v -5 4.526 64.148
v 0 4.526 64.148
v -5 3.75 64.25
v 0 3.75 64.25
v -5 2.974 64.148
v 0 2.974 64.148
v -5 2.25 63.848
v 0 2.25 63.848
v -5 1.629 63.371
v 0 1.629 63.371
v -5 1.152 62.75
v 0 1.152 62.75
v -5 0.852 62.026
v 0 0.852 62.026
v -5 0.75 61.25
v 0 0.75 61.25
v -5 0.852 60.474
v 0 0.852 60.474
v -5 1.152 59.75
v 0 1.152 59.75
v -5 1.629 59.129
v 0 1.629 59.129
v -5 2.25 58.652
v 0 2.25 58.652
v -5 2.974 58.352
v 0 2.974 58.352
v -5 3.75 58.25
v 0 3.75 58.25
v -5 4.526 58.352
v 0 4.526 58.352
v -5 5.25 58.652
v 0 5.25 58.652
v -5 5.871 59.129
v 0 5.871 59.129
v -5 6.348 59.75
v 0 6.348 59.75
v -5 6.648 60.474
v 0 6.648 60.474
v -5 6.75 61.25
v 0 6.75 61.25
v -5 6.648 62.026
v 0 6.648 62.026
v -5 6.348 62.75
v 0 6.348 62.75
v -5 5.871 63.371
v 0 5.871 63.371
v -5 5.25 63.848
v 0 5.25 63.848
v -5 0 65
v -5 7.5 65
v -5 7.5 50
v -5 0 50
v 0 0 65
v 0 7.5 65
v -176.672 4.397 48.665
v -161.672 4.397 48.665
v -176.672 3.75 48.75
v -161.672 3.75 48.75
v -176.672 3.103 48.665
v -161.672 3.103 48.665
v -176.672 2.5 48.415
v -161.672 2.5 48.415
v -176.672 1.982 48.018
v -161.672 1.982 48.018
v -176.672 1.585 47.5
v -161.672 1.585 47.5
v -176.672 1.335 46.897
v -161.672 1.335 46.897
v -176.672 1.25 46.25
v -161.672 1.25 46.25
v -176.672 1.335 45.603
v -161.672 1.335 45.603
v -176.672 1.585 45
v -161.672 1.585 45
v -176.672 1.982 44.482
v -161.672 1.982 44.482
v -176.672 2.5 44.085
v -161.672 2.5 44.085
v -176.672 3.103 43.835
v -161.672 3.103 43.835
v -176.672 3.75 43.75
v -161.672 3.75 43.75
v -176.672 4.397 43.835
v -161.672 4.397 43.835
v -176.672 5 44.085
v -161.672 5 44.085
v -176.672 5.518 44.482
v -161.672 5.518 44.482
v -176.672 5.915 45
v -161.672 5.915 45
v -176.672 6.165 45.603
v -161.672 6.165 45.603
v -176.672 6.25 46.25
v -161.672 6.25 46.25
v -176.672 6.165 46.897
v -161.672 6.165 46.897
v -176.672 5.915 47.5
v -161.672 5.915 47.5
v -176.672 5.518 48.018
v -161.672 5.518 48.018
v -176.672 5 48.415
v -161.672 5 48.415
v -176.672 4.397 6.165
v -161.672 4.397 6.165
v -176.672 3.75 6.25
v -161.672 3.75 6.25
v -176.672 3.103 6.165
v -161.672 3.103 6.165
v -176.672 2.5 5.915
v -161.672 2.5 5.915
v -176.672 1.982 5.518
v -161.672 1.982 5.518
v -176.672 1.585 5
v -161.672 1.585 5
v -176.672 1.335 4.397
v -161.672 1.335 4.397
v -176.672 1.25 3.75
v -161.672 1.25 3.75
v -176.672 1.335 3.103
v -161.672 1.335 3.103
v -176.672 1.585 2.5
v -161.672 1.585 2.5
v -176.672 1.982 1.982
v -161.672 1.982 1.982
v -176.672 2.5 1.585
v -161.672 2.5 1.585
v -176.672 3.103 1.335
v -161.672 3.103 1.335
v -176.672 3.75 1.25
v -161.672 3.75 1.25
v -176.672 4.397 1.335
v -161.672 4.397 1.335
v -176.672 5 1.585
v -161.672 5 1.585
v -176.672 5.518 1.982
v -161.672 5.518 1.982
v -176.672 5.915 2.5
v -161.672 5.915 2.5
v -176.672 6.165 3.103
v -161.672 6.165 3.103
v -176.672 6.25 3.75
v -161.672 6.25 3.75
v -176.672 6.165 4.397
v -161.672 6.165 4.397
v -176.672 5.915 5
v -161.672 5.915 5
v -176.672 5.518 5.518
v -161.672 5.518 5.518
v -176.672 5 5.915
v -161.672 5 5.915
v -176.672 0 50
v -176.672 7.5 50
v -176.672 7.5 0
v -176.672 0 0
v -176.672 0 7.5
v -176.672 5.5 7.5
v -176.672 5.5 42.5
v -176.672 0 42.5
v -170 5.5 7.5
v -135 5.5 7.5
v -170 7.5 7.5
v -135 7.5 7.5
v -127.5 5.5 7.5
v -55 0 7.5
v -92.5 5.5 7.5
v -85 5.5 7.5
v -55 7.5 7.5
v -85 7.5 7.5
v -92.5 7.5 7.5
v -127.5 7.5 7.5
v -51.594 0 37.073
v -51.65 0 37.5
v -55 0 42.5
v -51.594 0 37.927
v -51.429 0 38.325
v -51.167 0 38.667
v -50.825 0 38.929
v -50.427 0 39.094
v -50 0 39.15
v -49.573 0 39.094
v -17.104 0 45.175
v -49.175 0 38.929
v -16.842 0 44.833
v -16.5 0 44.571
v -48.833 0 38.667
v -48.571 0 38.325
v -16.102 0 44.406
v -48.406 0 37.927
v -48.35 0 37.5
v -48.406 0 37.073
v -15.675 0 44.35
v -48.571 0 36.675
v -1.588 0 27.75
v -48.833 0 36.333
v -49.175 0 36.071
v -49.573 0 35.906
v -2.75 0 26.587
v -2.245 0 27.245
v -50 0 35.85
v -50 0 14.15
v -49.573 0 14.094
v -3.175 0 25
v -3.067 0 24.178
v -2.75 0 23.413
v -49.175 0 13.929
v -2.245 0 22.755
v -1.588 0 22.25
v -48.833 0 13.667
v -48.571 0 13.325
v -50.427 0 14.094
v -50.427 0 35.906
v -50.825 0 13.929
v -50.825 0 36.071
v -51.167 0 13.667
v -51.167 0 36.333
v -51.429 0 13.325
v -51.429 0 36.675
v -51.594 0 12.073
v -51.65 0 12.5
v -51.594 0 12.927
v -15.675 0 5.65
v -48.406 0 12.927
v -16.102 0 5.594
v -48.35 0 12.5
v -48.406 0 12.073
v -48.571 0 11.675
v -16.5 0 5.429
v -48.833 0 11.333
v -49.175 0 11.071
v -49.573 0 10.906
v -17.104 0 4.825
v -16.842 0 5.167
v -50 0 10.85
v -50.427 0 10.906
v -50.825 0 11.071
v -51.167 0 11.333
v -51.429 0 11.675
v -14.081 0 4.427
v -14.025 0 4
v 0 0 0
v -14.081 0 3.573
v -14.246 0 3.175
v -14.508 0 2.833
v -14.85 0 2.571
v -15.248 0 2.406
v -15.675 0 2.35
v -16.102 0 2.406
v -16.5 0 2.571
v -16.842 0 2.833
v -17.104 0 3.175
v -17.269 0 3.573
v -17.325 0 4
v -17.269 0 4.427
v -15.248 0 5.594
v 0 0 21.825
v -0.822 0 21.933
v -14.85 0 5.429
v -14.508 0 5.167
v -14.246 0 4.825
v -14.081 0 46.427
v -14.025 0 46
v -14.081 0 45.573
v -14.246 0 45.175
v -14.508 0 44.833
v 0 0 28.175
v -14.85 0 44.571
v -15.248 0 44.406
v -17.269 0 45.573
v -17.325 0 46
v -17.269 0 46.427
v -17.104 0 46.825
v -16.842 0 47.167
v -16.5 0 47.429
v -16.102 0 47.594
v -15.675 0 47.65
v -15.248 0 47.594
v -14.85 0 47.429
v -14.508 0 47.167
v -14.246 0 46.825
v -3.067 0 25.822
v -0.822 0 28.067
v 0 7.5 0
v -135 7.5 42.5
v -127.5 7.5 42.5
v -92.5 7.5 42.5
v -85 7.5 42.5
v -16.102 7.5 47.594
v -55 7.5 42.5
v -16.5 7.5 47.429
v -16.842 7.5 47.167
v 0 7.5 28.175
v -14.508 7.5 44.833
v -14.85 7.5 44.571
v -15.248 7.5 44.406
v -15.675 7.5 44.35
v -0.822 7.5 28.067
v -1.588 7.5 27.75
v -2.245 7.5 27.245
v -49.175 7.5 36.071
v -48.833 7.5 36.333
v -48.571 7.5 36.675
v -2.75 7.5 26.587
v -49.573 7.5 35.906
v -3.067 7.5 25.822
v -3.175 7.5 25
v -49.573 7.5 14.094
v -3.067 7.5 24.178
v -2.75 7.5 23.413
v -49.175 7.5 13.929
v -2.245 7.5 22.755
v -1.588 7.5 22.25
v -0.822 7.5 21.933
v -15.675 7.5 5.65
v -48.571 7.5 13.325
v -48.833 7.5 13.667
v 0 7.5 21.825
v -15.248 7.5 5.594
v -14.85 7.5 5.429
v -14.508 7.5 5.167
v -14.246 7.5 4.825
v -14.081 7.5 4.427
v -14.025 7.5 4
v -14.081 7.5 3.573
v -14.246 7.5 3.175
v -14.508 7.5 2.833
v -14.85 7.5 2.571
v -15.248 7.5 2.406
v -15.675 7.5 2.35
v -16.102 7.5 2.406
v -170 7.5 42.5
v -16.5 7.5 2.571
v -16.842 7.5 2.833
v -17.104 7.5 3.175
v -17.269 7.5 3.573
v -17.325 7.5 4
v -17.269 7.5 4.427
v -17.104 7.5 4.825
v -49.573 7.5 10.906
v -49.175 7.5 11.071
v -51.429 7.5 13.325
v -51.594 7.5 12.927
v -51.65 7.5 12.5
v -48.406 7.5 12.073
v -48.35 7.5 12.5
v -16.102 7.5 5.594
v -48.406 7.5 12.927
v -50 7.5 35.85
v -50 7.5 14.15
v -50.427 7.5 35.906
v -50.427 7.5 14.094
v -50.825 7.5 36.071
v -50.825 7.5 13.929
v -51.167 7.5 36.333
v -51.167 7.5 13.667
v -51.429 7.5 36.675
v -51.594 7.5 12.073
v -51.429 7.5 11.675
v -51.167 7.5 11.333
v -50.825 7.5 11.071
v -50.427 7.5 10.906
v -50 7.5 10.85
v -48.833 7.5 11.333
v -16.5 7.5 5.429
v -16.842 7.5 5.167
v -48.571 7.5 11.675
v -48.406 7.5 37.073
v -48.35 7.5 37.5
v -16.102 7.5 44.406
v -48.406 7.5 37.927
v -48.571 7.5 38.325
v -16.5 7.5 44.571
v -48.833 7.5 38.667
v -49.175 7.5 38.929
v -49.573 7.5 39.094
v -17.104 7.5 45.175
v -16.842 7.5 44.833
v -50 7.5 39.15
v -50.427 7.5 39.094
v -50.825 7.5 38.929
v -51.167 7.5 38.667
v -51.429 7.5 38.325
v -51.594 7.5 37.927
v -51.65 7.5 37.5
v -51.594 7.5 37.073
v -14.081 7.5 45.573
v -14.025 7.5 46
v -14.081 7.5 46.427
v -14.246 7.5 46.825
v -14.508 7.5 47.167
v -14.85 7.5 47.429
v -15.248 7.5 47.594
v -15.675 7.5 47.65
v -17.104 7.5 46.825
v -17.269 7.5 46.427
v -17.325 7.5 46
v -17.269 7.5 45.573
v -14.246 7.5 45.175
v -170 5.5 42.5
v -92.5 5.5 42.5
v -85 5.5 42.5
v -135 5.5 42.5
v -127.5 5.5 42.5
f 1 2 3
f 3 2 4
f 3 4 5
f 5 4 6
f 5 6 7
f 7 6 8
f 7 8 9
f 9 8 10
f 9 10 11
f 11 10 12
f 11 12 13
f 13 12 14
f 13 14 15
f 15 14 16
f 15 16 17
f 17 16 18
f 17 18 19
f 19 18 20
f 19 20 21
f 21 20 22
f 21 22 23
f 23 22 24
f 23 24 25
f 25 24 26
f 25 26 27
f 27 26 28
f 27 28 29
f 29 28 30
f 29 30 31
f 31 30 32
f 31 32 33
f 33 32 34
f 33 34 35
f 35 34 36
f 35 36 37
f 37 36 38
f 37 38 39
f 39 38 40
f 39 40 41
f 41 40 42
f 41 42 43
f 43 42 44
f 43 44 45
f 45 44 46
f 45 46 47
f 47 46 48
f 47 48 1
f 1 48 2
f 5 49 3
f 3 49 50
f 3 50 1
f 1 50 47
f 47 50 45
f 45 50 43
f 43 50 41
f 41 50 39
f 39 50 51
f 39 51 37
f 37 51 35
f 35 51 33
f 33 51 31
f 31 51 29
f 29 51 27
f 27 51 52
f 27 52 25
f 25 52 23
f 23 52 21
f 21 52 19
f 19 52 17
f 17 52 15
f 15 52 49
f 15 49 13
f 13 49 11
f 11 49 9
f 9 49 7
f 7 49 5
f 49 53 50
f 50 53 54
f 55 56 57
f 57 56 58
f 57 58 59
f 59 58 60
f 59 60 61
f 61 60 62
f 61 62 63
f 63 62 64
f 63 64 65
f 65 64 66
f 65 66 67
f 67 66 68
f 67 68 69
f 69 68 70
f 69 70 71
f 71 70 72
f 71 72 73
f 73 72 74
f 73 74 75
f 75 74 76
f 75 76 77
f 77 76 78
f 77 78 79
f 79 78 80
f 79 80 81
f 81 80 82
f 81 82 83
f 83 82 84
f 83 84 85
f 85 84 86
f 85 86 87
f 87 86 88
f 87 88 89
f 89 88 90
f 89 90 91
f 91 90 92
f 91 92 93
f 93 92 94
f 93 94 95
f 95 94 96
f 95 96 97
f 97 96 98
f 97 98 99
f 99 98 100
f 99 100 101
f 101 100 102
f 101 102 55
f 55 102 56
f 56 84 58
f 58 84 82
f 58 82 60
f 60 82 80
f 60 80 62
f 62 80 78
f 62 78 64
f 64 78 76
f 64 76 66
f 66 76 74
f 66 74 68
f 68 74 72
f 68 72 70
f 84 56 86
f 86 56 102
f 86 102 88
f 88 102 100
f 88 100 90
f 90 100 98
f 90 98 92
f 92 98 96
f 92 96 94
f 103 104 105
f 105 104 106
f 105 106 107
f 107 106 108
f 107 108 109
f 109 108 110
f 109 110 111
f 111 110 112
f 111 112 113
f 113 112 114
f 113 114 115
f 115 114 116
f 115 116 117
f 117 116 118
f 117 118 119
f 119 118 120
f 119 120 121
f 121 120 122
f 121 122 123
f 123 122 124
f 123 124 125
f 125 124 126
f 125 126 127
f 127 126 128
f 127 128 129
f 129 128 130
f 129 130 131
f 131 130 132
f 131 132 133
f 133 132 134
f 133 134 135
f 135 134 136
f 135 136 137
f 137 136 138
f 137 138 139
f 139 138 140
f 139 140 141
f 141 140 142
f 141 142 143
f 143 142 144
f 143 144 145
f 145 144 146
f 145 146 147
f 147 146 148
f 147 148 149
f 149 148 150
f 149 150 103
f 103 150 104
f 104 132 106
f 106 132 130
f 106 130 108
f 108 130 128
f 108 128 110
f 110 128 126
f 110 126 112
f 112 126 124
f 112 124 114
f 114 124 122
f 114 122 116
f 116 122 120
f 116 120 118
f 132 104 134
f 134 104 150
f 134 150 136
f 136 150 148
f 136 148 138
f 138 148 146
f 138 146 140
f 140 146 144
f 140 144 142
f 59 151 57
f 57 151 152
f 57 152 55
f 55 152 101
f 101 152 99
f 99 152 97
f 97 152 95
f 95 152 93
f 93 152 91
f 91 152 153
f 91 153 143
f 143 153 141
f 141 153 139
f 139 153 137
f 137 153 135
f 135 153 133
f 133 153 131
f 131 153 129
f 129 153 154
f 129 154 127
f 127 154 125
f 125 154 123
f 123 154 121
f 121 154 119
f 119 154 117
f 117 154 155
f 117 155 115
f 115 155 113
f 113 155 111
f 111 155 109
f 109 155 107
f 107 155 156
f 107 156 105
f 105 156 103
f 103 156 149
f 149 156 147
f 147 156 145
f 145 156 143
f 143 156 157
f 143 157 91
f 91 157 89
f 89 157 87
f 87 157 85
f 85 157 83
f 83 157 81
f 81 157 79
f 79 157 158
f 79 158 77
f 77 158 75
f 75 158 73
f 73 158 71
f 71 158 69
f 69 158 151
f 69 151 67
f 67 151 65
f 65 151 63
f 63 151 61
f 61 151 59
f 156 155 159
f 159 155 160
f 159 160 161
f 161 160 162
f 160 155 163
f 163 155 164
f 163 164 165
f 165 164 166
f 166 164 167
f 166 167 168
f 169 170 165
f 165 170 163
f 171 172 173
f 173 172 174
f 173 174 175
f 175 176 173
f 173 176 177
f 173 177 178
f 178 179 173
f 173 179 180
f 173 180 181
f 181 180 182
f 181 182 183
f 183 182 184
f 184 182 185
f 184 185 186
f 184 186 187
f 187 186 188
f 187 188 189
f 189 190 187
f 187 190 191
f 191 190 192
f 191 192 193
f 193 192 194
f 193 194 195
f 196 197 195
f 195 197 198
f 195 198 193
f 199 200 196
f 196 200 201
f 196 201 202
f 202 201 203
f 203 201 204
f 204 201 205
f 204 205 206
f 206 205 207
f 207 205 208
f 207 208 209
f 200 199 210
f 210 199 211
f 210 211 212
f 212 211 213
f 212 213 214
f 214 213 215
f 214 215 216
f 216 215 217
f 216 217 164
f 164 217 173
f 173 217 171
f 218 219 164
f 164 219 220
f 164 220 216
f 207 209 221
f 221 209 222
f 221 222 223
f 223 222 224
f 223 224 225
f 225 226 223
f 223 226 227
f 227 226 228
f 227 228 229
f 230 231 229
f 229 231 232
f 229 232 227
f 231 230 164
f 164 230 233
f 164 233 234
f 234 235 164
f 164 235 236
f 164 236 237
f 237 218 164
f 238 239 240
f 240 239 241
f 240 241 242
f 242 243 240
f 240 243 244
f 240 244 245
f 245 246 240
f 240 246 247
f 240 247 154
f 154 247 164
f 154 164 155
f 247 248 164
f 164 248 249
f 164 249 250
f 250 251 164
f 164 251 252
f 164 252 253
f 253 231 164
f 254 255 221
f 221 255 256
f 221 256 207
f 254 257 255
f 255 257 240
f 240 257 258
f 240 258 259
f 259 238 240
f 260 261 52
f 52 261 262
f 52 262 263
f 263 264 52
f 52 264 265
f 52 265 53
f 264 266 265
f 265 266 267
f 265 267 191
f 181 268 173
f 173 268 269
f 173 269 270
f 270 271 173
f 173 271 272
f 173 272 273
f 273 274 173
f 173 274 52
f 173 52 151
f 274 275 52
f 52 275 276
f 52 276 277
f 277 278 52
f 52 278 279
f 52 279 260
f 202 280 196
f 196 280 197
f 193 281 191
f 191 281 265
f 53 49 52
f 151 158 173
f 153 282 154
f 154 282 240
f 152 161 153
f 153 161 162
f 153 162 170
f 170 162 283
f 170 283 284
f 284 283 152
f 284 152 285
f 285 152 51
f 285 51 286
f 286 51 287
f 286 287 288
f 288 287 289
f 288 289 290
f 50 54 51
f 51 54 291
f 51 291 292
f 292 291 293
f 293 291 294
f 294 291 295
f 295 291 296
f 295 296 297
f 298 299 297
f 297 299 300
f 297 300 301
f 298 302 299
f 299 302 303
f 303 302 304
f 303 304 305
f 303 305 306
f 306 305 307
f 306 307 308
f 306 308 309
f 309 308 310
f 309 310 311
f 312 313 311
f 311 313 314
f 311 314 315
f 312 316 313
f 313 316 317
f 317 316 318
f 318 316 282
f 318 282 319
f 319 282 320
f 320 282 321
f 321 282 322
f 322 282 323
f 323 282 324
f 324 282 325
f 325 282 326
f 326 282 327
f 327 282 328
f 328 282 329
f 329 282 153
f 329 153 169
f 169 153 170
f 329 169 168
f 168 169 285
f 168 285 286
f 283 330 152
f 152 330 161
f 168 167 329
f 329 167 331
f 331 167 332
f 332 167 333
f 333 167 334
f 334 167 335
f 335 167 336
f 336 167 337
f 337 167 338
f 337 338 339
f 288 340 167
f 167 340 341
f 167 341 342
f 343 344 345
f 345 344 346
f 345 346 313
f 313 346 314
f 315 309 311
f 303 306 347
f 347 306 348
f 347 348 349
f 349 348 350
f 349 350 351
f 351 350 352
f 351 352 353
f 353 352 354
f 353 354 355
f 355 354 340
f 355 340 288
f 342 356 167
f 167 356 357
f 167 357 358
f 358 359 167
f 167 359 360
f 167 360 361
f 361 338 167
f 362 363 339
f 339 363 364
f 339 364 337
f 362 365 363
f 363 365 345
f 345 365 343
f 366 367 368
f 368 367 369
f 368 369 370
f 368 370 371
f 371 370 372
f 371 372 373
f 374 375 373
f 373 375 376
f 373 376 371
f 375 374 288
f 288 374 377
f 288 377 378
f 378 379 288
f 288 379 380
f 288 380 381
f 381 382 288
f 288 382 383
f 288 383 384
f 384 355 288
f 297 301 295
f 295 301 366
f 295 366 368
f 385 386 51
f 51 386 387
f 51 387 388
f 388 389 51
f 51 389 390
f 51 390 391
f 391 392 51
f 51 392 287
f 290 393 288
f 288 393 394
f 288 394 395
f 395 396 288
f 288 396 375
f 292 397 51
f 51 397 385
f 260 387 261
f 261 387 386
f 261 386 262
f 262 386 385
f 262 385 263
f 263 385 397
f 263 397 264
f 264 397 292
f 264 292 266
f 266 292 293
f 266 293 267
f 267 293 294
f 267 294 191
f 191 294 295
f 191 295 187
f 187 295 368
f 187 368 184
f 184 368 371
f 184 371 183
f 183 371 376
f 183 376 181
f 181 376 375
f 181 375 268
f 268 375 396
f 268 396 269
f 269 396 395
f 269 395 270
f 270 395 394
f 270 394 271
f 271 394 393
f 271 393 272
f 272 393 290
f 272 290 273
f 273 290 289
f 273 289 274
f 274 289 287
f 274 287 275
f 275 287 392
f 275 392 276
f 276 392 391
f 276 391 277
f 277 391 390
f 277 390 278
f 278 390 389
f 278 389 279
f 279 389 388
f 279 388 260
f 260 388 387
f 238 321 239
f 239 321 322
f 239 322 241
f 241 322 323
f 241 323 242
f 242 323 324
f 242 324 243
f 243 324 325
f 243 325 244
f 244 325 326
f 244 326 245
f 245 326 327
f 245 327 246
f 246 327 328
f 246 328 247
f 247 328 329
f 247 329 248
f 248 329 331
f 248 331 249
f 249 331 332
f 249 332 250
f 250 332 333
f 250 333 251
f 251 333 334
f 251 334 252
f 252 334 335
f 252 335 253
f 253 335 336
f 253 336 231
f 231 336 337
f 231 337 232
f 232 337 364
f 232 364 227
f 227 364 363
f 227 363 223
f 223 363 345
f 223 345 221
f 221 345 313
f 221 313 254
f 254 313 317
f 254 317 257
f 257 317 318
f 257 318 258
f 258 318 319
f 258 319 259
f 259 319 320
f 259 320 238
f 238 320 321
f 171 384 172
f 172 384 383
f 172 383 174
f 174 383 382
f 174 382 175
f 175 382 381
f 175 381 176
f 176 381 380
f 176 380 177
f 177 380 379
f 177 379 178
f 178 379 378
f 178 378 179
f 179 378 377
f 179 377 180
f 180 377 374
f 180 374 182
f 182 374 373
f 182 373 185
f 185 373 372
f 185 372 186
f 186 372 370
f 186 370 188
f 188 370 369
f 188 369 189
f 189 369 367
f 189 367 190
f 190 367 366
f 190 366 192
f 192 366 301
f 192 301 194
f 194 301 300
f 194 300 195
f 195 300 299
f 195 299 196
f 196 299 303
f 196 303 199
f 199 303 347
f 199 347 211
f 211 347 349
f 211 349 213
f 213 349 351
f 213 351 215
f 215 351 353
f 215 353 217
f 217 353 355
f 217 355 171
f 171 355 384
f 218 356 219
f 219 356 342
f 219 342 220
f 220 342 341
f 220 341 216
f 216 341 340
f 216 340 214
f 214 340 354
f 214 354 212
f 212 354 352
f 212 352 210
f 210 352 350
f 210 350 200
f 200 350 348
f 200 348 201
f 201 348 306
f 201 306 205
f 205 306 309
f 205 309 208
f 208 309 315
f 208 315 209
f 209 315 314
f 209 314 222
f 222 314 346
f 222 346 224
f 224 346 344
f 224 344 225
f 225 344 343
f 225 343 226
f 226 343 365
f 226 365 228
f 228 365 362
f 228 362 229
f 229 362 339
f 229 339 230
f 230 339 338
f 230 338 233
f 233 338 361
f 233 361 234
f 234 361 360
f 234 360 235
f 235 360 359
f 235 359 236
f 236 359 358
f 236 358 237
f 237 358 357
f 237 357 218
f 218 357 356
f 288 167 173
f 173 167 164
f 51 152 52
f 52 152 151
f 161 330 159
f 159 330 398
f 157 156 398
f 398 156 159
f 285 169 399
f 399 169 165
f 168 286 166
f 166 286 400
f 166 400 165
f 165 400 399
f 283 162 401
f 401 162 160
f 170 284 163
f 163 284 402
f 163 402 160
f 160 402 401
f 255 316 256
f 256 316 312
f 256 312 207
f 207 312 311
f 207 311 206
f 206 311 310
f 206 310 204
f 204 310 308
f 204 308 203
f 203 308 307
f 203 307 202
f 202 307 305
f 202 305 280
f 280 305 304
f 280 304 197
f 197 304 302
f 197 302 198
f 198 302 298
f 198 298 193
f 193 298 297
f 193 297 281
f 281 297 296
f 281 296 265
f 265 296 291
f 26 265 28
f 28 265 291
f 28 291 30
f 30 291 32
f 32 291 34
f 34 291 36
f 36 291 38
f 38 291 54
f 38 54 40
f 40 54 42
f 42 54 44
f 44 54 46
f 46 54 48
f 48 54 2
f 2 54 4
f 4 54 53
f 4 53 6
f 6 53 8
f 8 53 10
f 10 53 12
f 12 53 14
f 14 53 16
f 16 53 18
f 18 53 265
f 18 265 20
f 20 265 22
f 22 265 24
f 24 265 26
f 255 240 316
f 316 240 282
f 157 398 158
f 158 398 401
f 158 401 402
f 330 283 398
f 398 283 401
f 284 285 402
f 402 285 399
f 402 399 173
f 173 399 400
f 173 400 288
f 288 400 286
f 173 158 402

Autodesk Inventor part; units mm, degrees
ref_plane "YZ Plane" through (0, 0, 0) normal (1, 0, 0) x (0, 1, 0)
ref_plane "XZ Plane" through (0, 0, 0) normal (0, 1, 0) x (-1, 0, 0)
ref_plane "XY Plane" through (0, 0, 0) normal (0, 0, 1) x (1, 0, 0)
sketch "Sketch1" plane through (0, 0, 0) normal (0, 1, 0) x (-1, 0, 0)
  line L0 (0, 0) -> (50, 0)
  line L1 (50, 0) -> (50, 50)
  line L2 (50, 50) -> (0, 50)
  line L3 (0, 50) -> (0, 0)
  line L4 (50, 50) -> (290, 50)
  line L5 (290, 50) -> (290, 42.5)
  line L6 (290, 42.5) -> (50, 42.5)
  line L7 (50, 42.5) -> (50, 50)
  line L8 (50, 0) -> (290, 0)
  line L9 (290, 0) -> (290, 7.5)
  line L10 (290, 7.5) -> (50, 7.5)
  line L11 (50, 7.5) -> (50, 0)
  dimension "d0" = 50
  dimension "d1" = 50
  dimension "d2" = 240
  dimension "d3" = 7.5
  dimension "d4" = 7.5
extrude "Extrusion1" add sketch "Sketch1" along normal blind 7.5
sketch "Sketch2" plane through (0, 7.5, 0) normal (0, 1, 0) x (1, 0, 0)
  line L0 (0, -50) -> (0, 0) projected
  point P0 (0, -25)
hole "Hole1" at (0, 7.5, 25) direction (0, -1, 0) diameter 6.35 end through all
sketch "Sketch3" plane through (0, 7.5, 0) normal (0, 1, 0) x (1, 0, 0)
  line L0 (-3.175, -50) -> (-3.175, 0) construction
  line L1 (-3.175, -50) -> (-28.175, -50) construction
  line L2 (-28.175, -50) -> (-28.175, 0) construction
  line L3 (-28.175, 0) -> (-3.175, 0) construction
  point P0 (0, 0)
  point P1 (-7.175, -4)
  point P2 (-24.175, -46)
  dimension "d14" = 25
hole "Hole2" at (-7.175, 7.5, 4) at (-24.175, 7.5, 46) direction (0, -1, 0) diameter 3.3 end through all
sketch "Sketch4" plane through (0, 7.5, 0) normal (0, 1, 0) x (1, 0, 0)
  arc A0 (0, -21.825) -> (0, -28.175) centre (0, -25) ccw construction
  line L0 (-3.175, -25) -> (-28.175, -25) construction
  line L1 (-3.175, -25) -> (21.825, -25) construction
  line L2 (-290, -50) -> (0, -50) construction
  line L3 (-28.175, -50) -> (-28.175, 0) construction
  line L4 (-50, -7.5) -> (-50, -42.5) construction
  line L5 (-50, -42.5) -> (-45, -42.5) construction
  line L6 (-45, -42.5) -> (-45, -32.5) construction
  line L7 (-45, -32.5) -> (-50, -32.5) construction
  line L8 (-50, -32.5) -> (-50, -42.5) construction
  line L9 (-45, -32.5) -> (-40, -32.5)
  line L10 (-40, -32.5) -> (-40, -42.5)
  line L11 (-40, -42.5) -> (-45, -42.5)
  line L12 (-45, -42.5) -> (-45, -32.5)
  point P0 (0, 0)
  dimension "d22" = 25
  dimension "d23" = 180
  dimension "d24" = 5
  dimension "d25" = 10
  dimension "d26" = 5
extrude "Extrusion2" add sketch "Sketch4" along normal blind 17.5
sketch "Sketch5" plane through (0, 7.5, 0) normal (0, 1, 0) x (1, 0, 0)
  line L0 (-85, -7.5) -> (-85, -42.5)
  line L1 (-127.5, -7.5) -> (-127.5, -42.5)
  line L2 (-92.5, -42.5) -> (-92.5, -7.5)
  line L3 (-135, -7.5) -> (-170, -7.5) construction
  line L4 (-170, -7.5) -> (-170, -42.5) construction
  line L5 (-170, -42.5) -> (-135, -42.5) construction
  line L6 (-135, -42.5) -> (-135, -7.5) construction
  line L7 (-177.5, -7.5) -> (-212.5, -7.5) construction
  line L8 (-212.5, -7.5) -> (-212.5, -42.5) construction
  line L9 (-212.5, -42.5) -> (-177.5, -42.5) construction
  line L10 (-177.5, -42.5) -> (-177.5, -7.5) construction
  line L11 (-220, -7.5) -> (-255, -7.5) construction
  line L12 (-255, -7.5) -> (-255, -42.5) construction
  line L13 (-255, -42.5) -> (-220, -42.5) construction
  line L14 (-220, -42.5) -> (-220, -7.5) construction
  line L15 (-85, -7.5) -> (-92.5, -7.5) construction
  line L16 (-92.5, -7.5) -> (-92.5, -42.5) construction
  line L17 (-92.5, -42.5) -> (-85, -42.5) construction
  line L18 (-85, -42.5) -> (-85, -7.5) construction
  line L19 (-127.5, -7.5) -> (-135, -7.5) construction
  line L20 (-135, -7.5) -> (-135, -42.5) construction
  line L21 (-135, -42.5) -> (-127.5, -42.5) construction
  line L22 (-127.5, -42.5) -> (-127.5, -7.5) construction
  line L23 (-170, -7.5) -> (-177.5, -7.5) construction
  line L24 (-177.5, -7.5) -> (-177.5, -42.5) construction
  line L25 (-177.5, -42.5) -> (-170, -42.5) construction
  line L26 (-170, -42.5) -> (-170, -7.5) construction
  line L27 (-212.5, -7.5) -> (-220, -7.5) construction
  line L28 (-220, -7.5) -> (-220, -42.5) construction
  line L29 (-220, -42.5) -> (-212.5, -42.5) construction
  line L30 (-212.5, -42.5) -> (-212.5, -7.5) construction
  line L31 (-220, -7.5) -> (-212.5, -7.5)
  line L32 (-212.5, -7.5) -> (-212.5, -42.5)
  line L33 (-212.5, -42.5) -> (-220, -42.5)
  line L34 (-220, -42.5) -> (-220, -7.5)
  line L35 (-177.5, -7.5) -> (-170, -7.5)
  line L36 (-170, -7.5) -> (-170, -42.5)
  line L37 (-170, -42.5) -> (-177.5, -42.5)
  line L38 (-177.5, -42.5) -> (-177.5, -7.5)
  line L39 (-135, -7.5) -> (-127.5, -7.5)
  line L40 (-127.5, -7.5) -> (-127.5, -42.5)
  line L41 (-127.5, -42.5) -> (-135, -42.5)
  line L42 (-135, -42.5) -> (-135, -7.5)
  line L43 (-92.5, -7.5) -> (-85, -7.5)
  line L44 (-85, -7.5) -> (-85, -42.5)
  line L45 (-85, -42.5) -> (-92.5, -42.5)
  line L46 (-92.5, -42.5) -> (-92.5, -7.5)
  point P0 (0, 0)
  point P1 (-50, -7.5)
  dimension "d30" = 35
  dimension "d31" = 35
  dimension "d32" = 35
  dimension "d33" = 35
  dimension "d34" = 35
  dimension "d35" = 35
extrude "Extrusion3" add sketch "Sketch5" against normal blind 2
sketch "Sketch6" plane through (0, 7.5, 0) normal (0, 1, 0) x (1, 0, 0)
  line L0 (-290, 0) -> (-290, -7.5) projected
  line L1 (-290, -50) -> (0, -50) projected
  line L2 (-290, 0) -> (-280, 0)
  line L3 (-280, 0) -> (-280, -50)
  line L4 (-280, -50) -> (-290, -50)
  line L5 (-290, -50) -> (-290, 0)
  point P0 (0, 0)
  dimension "d38" = 10
extrude "Extrusion4" cut sketch "Sketch6" against normal blind 7.5
sketch "Sketch7" plane through (-280, 7.5, 0) normal (-1, 0, 0) x (0, 0, 1)
  point P0 (0, -7.5)
sketch "Sketch8" plane through (-280, 7.5, 0) normal (-1, 0, 0) x (0, 0, 1)
  line L0 (-25, 0) -> (75, 0)
  line L1 (75, 0) -> (75, -7.5)
  line L2 (75, -7.5) -> (-25, -7.5)
  line L3 (-25, -7.5) -> (-25, 0)
  line L4 (-25, 0) -> (75, 0)
  line L5 (75, 0) -> (75, -10)
  line L6 (75, -10) -> (-25, -10)
  line L7 (-25, -10) -> (-25, 0)
  point P0 (0, -7.5)
  dimension "d41" = 100
  dimension "d42" = 10
extrude "Extrusion5" add sketch "Sketch8" along normal blind 7.5
sketch "Sketch9" plane through (-287.5, 7.5, 0) normal (-1, 0, 0) x (0, 0, 1)
  line L0 (75, 0) -> (-25, 0) projected
  line L1 (-25, -10) -> (75, -10) projected
  line L2 (-25, 0) -> (-17.5, 0)
  line L3 (-17.5, 0) -> (-17.5, -10)
  line L4 (-17.5, -10) -> (-25, -10)
  line L5 (-25, -10) -> (-25, 0)
  line L6 (75, 0) -> (67.5, 0)
  line L7 (67.5, 0) -> (67.5, -10)
  line L8 (67.5, -10) -> (75, -10)
  line L9 (75, -10) -> (75, 0)
  point P0 (0, -7.5)
  dimension "d45" = 7.5
  dimension "d46" = 7.5
extrude "Extrusion6" add sketch "Sketch9" along normal blind 25 contours L9 L1 L7 L0 | L3 L1 L5 L0
sketch "Sketch10" plane through (-287.5, -2.5, -17.5) normal (0, 0, 1) x (1, 0, 0)
  line L0 (0, 0) -> (-25, 0) construction
  line L1 (0, 0) -> (-3, 0) construction
  line L2 (-3, 0) -> (-6.2, 0)
  line L3 (-6.2, 0) -> (-6.2, 2.1)
  line L4 (-6.2, 2.1) -> (-3, 2.1)
  line L5 (-3, 2.1) -> (-3, 0)
  line L6 (-6.2, 2.1) -> (-11.7, 2.1) construction
  line L7 (-11.7, 2.1) -> (-11.7, 5.4) construction
  point P0 (287.5, 2.5)
  dimension "d49" = 3
  dimension "d50" = 3.2
  dimension "d51" = 2.1
  dimension "d52" = 5.5
  dimension "d53" = 3.3
extrude "Extrusion7" add sketch "Sketch10" along normal blind 92.5
sketch "Sketch11" plane through (-287.5, -2.5, -17.5) normal (0, 0, 1) x (1, 0, 0)
  line L0 (-6.2, 2.1) -> (-3, 2.1) construction
  line L1 (-6.2, 2.1) -> (-11.7, 2.1) construction
  line L2 (-11.7, 2.1) -> (-11.7, 5.4) construction
  circle A0 centre (-11.7, 5.4) radius 2.125
  point P0 (287.5, 2.5)
  dimension "d56" = 5.5
  dimension "d57" = 3.3
  dimension "d58" = 4.25
extrude "Extrusion8" cut sketch "Sketch11" along normal mid plane 241
sketch "Sketch12" plane through (-287.5, -2.5, -17.5) normal (0, 0, 1) x (1, 0, 0)
  circle A0 centre (-11.7, 5.4) radius 2.125 construction
  line L0 (-11.7, 5.4) -> (-11.7, 0.96) construction
  line L1 (-11.7, 0.96) -> (-16.7, 0.96) construction
  line L2 (-6.2, 0) -> (-25, 0) projected
  line L3 (-16.7, 0.96) -> (-19.2, 0.96)
  line L4 (-19.2, 0.96) -> (-19.2, 0)
  line L5 (-19.2, 0) -> (-16.7, 0)
  line L6 (-16.7, 0) -> (-16.7, 0.96)
  point P0 (287.5, 2.5)
  dimension "d61" = 4.44
  dimension "d62" = 5
  dimension "d63" = 2.5
extrude "Extrusion9" add sketch "Sketch12" along normal blind 91.25
sketch "Sketch13" plane through (-293.7, -0.4, -17.5) normal (0, 1, 0) x (1, 0, 0)
  line L0 (3.2, 0) -> (3.2, -85) construction
  line L1 (3.2, 0) -> (3.2, -30) construction
  line L2 (0, 0) -> (0, -85) construction
  line L3 (3.2, -30) -> (0, -30) construction
  line L4 (0, -30) -> (0, -36.35) construction
  line L5 (0, -36.35) -> (3.2, -36.35) construction
  line L6 (3.2, -36.35) -> (3.2, -30) construction
  line L7 (0, -30) -> (3.2, -30)
  line L8 (3.2, -30) -> (3.2, -36.35)
  line L9 (3.2, -36.35) -> (0, -36.35)
  line L10 (0, -36.35) -> (0, -30)
  point P0 (293.7, -17.5)
  dimension "d66" = 30
  dimension "d67" = 6.35
extrude "Extrusion10" add sketch "Sketch13" along normal blind 3.8
sketch "Sketch14" plane through (0, 7.5, 0) normal (0, 1, 0) x (1, 0, 0)
  line L0 (-287.5, 17.5) -> (-287.5, -67.5) projected
  line L1 (-287.5, 17.5) -> (-285, 17.5)
  line L2 (-285, 17.5) -> (-285, -67.5)
  line L3 (-285, -67.5) -> (-287.5, -67.5)
  line L4 (-287.5, -67.5) -> (-287.5, 17.5)
  point P0 (0, 0)
  dimension "d70" = 2.5
extrude "Extrusion11" cut sketch "Sketch14" against normal blind 14.55
sketch "Sketch15" plane through (0, 7.5, 0) normal (0, 1, 0) x (1, 0, 0)
  line L0 (-312.5, 17.5) -> (-312.5, 25) projected
  line L1 (-280, -75) -> (-312.5, -75) projected
  line L2 (-312.5, 25) -> (-306.6488, 25)
  line L3 (-306.6488, 25) -> (-306.6488, -75)
  line L4 (-306.6488, -75) -> (-312.5, -75)
  line L5 (-312.5, -75) -> (-312.5, 25)
  point P0 (0, 0)
extrude "Extrusion12" cut sketch "Sketch15" against normal blind 14.55
fillet "Fillet1" radius 0.1 1 edges at (-301.325, 2.9, -17.5)
fillet "Fillet2" radius 0.1 1 edges at (-301.325, 2.9, 67.5)
fillet "Fillet3" radius 3.25 1 edges at (-280, 2.5, 75)
fillet "Fillet4" radius 3.25 1 edges at (-285, 2.5, 67.5)
fillet "Fillet5" radius 3.25 1 edges at (-280, 2.5, -25)
fillet "Fillet6" radius 3.25 1 edges at (-285, 2.5, -17.5)
sketch "Sketch16" plane through (0, 7.5, 0) normal (0, 1, 0) x (1, 0, 0)
  line L0 (-220, -42.5) -> (-220, -7.5) construction
  line L1 (-220, -42.5) -> (-280, -42.5) construction
  line L2 (-220, -7.5) -> (-255, -7.5) construction
  line L3 (-255, -7.5) -> (-255, -42.5) construction
  line L4 (-255, -42.5) -> (-220, -42.5) construction
  line L5 (-220, -42.5) -> (-220, -7.5) construction
  line L6 (-280, -7.5) -> (-280, 0) projected
  line L7 (-280, -7.5) -> (-270, -7.5)
  line L8 (-270, -7.5) -> (-270, -42.5)
  line L9 (-270, -42.5) -> (-280, -42.5)
  line L10 (-280, -42.5) -> (-280, -7.5)
  point P0 (0, 0)
  dimension "d81" = 35
  dimension "d82" = 10
extrude "Extrusion13" add sketch "Sketch16" against normal blind 2
sketch "Sketch17" plane through (0, 7.5, 0) normal (0, 1, 0) x (1, 0, 0)
  point P0 (0, 0)
sketch "Sketch18" plane through (0, 7.5, 0) normal (0, 1, 0) x (1, 0, 0)
  line L0 (-270, -7.5) -> (-270, -42.5) construction
  line L1 (-285, -64.25) -> (-285, 14.25) construction
  line L2 (-280, -7.5) -> (-280, 0) construction
  line L3 (-270, -7.5) -> (-280, -7.5) construction
  line L4 (-275, -7.5) -> (-275, -42.5) construction
  line L5 (-50, -42.5) -> (-280, -42.5) construction
  circle A0 centre (-275, -12.5) radius 1.8 construction
  circle A1 centre (-275, -37.5) radius 1.8 construction
  circle A2 centre (-275, -12.5) radius 1.8
  circle A3 centre (-275, -37.5) radius 1.8
  point P0 (0, 0)
  dimension "d85" = 3.6
  dimension "d86" = 3.6
hole "Hole3" at (-275, 7.5, 12.5) at (-275, 7.5, 37.5) direction (0, -1, 0) diameter 3.3 depth 15 tip angle 118
sketch "Sketch19" plane through (0, 7.5, 0) normal (0, 1, 0) x (1, 0, 0)
  circle A0 centre (-275, -12.5) radius 1.65 construction
  line L0 (-275, -12.5) -> (-212.5, -12.5) construction
  line L1 (-212.5, -7.5) -> (-212.5, -42.5) construction
  circle A1 centre (-275, -37.5) radius 1.65 construction
  line L2 (-275, -37.5) -> (-212.5, -37.5) construction
  line L3 (-220, -42.5) -> (-220, -7.5) construction
  line L4 (-220, -12.5) -> (-212.5, -12.5) construction
  line L5 (-216.25, -12.5) -> (-216.25, -37.5) construction
  point P0 (0, 0)
hole "Hole4" at (-216.25, 7.5, 12.5) at (-216.25, 7.5, 37.5) direction (0, -1, 0) diameter 3.3 depth 15 tip angle 118
sketch "Sketch20" plane through (-45, 7.5, 32.5) normal (-1, 0, 0) x (0, 0, 1)
  line L0 (10, 17.5) -> (0, 17.5) construction
  line L1 (5, 17.5) -> (5, -0.1335) construction
  line L2 (10, 0) -> (10, 17.5) construction
  line L3 (10, 12.5) -> (5, 12.5) construction
  circle A0 centre (5, 12.5) radius 3
  point P0 (-32.5, -7.5)
  dimension "d101" = 6
extrude "Extrusion14" cut sketch "Sketch20" against normal blind 20
sketch "Sketch21" plane through (0, 7.5, 0) normal (0, 1, 0) x (1, 0, 0)
  line L0 (-306.6488, 17.5) -> (-306.6488, -67.5) projected
  line L1 (-306.6488, 17.5) -> (-288.25, 17.5) projected
  line L2 (-306.6488, -67.5) -> (-288.25, -67.5)
  line L3 (-288.25, -67.5) -> (-288.25, 17.5)
  line L4 (-288.25, 17.5) -> (-306.6488, 17.5)
  line L5 (-306.6488, 17.5) -> (-306.6488, -67.5)
  point P0 (0, 0)
extrude "Extrusion15" cut sketch "Sketch21" against normal blind 10
sketch "Sketch22" plane through (0, 7.5, 0) normal (0, 1, 0) x (1, 0, 0)
  line L0 (-280, -50) -> (0, -50) projected
  line L1 (0, 0) -> (-280, 0) projected
  line L2 (-280, -50) -> (-270.5687, -50)
  line L3 (-270.5687, -50) -> (-270.5687, 0)
  line L4 (-270.5687, 0) -> (-280, 0)
  line L5 (-280, 0) -> (-280, -50)
  line L6 (-50, -42.5) -> (-280, -42.5) projected
  line L7 (-219.3019, -42.5) -> (-213.3073, -42.5)
  line L8 (-213.3073, -42.5) -> (-213.3073, -8.284)
  line L9 (-213.3073, -8.284) -> (-219.3019, -8.284)
  line L10 (-219.3019, -8.284) -> (-219.3019, -42.5)
extrude "Extrusion16" add sketch "Sketch22" against normal blind 2
sketch "Sketch23" plane through (-306.6488, -2.5, -25) normal (0, 0, -1) x (-1, 0, 0)
  circle A0 centre (-7.4488, 5.4) radius 2.125 projected
  circle A1 centre (-7.4488, 5.4) radius 2
  circle A2 centre (-7.4488, 5.4) radius 2.4429
  point P0 (-306.6488, 2.5)
  dimension "d108" = 4
extrude "Extrusion17" add sketch "Sketch23" against normal blind 100 contours A0 | A2
sketch "Sketch24" plane through (0, 7.5, 0) normal (0, 1, 0) x (1, 0, 0)
  line L0 (-288.25, -67.5) -> (-306.6488, -67.5) projected
  arc A0 (-285, 14.25) -> (-288.25, 17.5) centre (-288.25, 14.25) ccw projected
  line L1 (-306.6488, -67.5) -> (-288.25, -67.5)
  line L2 (-288.25, -67.5) -> (-288.25, 17.5)
  line L3 (-288.25, 17.5) -> (-306.6488, 17.5)
  line L4 (-306.6488, 17.5) -> (-306.6488, -67.5)
  point P0 (0, 0)
extrude "Extrusion18" cut sketch "Sketch24" against normal blind 100
sketch "Sketch25" plane through (0, 7.5, 0) normal (0, 1, 0) x (1, 0, 0)
  line L0 (-50, -42.5) -> (-280, -42.5) projected
  line L1 (-280, -7.5) -> (-50, -7.5) projected
  line L2 (-50, -42.5) -> (-55, -42.5)
  line L3 (-55, -42.5) -> (-55, -7.5)
  line L4 (-55, -7.5) -> (-50, -7.5)
  line L5 (-50, -7.5) -> (-50, -42.5)
  point P0 (0, 0)
  dimension "d113" = 5
extrude "Extrusion19" add sketch "Sketch25" against normal blind 2
sketch "Sketch26" plane through (0, 7.5, 0) normal (0, 1, 0) x (1, 0, 0)
  line L0 (-55, -42.5) -> (-85, -42.5) construction
  line L1 (-55, -42.5) -> (-50, -42.5) construction
  line L2 (-55, -42.5) -> (-50, -42.5) construction
  line L3 (-50, -42.5) -> (-50, -7.5) construction
  line L4 (-50, -42.5) -> (-50, -7.5) construction
  circle A0 centre (-50, -37.5) radius 1.65 construction
  circle A1 centre (-50, -12.5) radius 1.65 construction
  circle A2 centre (-50, -37.5) radius 1.65
  circle A3 centre (-50, -12.5) radius 1.65
  line L5 (-50, -37.5) -> (-92.5, -37.5) construction
  line L6 (-92.5, -42.5) -> (-92.5, -7.5) construction
  line L7 (-50, -12.5) -> (-92.5, -12.5) construction
  line L8 (-92.5, -37.5) -> (-85, -37.5) construction
  line L9 (-85, -7.5) -> (-85, -42.5) construction
  line L10 (-88.75, -37.5) -> (-88.75, -12.5) construction
  circle A4 centre (-88.75, -37.5) radius 1.65
  circle A5 centre (-88.75, -12.5) radius 1.65
  point P0 (0, 0)
  dimension "d116" = 3.3
  dimension "d117" = 3.3
  dimension "d118" = 3.3
  dimension "d119" = 3.3
extrude "Extrusion20" cut sketch "Sketch26" against normal blind 2
sketch "Sketch27" plane through (0, 5.5, 0) normal (0, -1, 0) x (1, 0, 0)
  line L0 (-50, 7.5) -> (-55, 7.5) projected
  line L1 (-55, 7.5) -> (-46.6169, 7.5)
  line L2 (-46.6169, 7.5) -> (-46.6169, 42.5)
  line L3 (-46.6169, 42.5) -> (-55, 42.5)
  line L4 (-55, 42.5) -> (-55, 7.5)
  point P0 (0, 0)
extrude "Extrusion21" add sketch "Sketch27" along normal blind 5.5
sketch "Sketch28" plane through (0, 7.5, 0) normal (0, 1, 0) x (1, 0, 0)
  circle A0 centre (-50, -12.5) radius 1.65 projected
  circle A1 centre (-50, -37.5) radius 1.65 projected
  point P0 (0, 0)
hole "Hole5" at (-50, 7.5, 12.5) at (-50, 7.5, 37.5) direction (0, -1, 0) diameter 3.3 depth 8 tip angle 118
sketch "Sketch29" plane through (0, 7.5, 0) normal (0, 1, 0) x (1, 0, 0)
  circle A0 centre (-7.175, -4) radius 1.65 construction
  circle A1 centre (-24.175, -46) radius 1.65 construction
  line L0 (-7.175, -4) -> (-24.175, -46) construction
  line L1 (-7.175, -4) -> (-7.175, -46) construction
  line L2 (-7.175, -46) -> (-24.175, -46) construction
  line L3 (-7.175, -25) -> (-25.825, -25) construction
  line L4 (-25.825, -25) -> (-25.825, -46) construction
  line L5 (-16.5, -25) -> (-25.825, -25) construction
  line L6 (-24.175, -46) -> (-24.175, -25) construction
  line L7 (-15.675, -46) -> (-15.675, -4) construction
  line L8 (-40, -32.5) -> (-40, -42.5) construction
  line L9 (-40, -42.5) -> (-24.175, -42.5) construction
  line L10 (-24.175, -42.5) -> (-24.175, -46) construction
  line L11 (-15.675, -25) -> (-15.675, -46) construction
  line L12 (-15.675, -46) -> (-15.675, -4) construction
  circle A2 centre (-15.675, -46) radius 1.65 construction
  circle A3 centre (-15.675, -46) radius 1.65
  circle A4 centre (-15.675, -4) radius 1.65
  point P0 (0, 0)
  dimension "d131" = 42
  dimension "d132" = 17
  dimension "d133" = 21
  dimension "d135" = 8.5
  dimension "d136" = 15.825
  dimension "d137" = 3.5
  dimension "d138" = 21
  dimension "d139" = 3.3
  dimension "d140" = 3.3
  dimension "d141" = 3.3
extrude "Extrusion22" cut sketch "Sketch29" against normal blind 10
sketch "Sketch30" plane through (0, 7.5, 0) normal (0, 1, 0) x (1, 0, 0)
  circle A0 centre (-7.175, -4) radius 1.65 projected
  circle A1 centre (-7.175, -4) radius 2.1021
  circle A2 centre (-24.175, -46) radius 1.65 projected
  circle A3 centre (-24.175, -46) radius 2.9173
  point P0 (0, 0)
extrude "Extrusion23" add sketch "Sketch30" against normal blind 7.5 contours A0 | A1 | A2 | A3
sketch "Sketch31" plane through (0, 7.5, 0) normal (0, 1, 0) x (1, 0, 0)
  line L0 (-45, -42.5) -> (-45, -32.5) construction
  circle A0 centre (-50, -37.5) radius 1.65 construction
  line L1 (-45, -37.5) -> (-50, -37.5) construction
  circle A1 centre (-50, -12.5) radius 1.65 construction
  line L2 (-50, -12.5) -> (-45, -12.5) construction
  line L3 (-40, -32.5) -> (-40, -42.5) construction
  line L4 (-40, -42.5) -> (-45, -32.5) construction
  line L5 (-45, -32.5) -> (-40, -32.5) construction
  line L6 (-40, -32.5) -> (-45, -42.5) construction
  line L7 (-50, -37.5) -> (-42.5, -37.5) construction
  line L8 (-42.5, -37.5) -> (-42.5, -12.5) construction
  line L9 (-45, -17.5) -> (-40, -17.5)
  line L10 (-40, -17.5) -> (-40, -7.5)
  line L11 (-40, -7.5) -> (-45, -7.5)
  line L12 (-45, -7.5) -> (-45, -17.5)
  line L13 (-45, -17.5) -> (-40, -7.5) construction
  line L14 (-40, -17.5) -> (-45, -7.5) construction
  point P0 (0, 0)
  dimension "d146" = 5
  dimension "d147" = 10
  dimension "d148" = 5
  dimension "d149" = 10
extrude "Extrusion24" add sketch "Sketch31" along normal blind 17.5
sketch "Sketch32" plane through (-45, 7.5, 7.5) normal (-1, 0, 0) x (0, 0, 1)
  line L0 (10, 17.5) -> (0, 17.5) construction
  line L1 (5, 17.5) -> (5, 12.5) construction
  point P0 (-7.5, -7.5)
  dimension "d152" = 5
hole "Hole6" at (-45, 20, 12.5) direction (1, 0, 0) diameter 7 depth 8 tip angle 118
sketch "Sketch33" plane through (0, 25, 0) normal (0, 1, 0) x (1, 0, 0)
  line L0 (-45, -32.5) -> (-40, -32.5) projected
  line L1 (-40, -32.5) -> (-40, -42.5) projected
  line L2 (-45, -32.5) -> (-40, -32.5)
  line L3 (-40, -32.5) -> (-40, -42.5)
  line L4 (-40, -42.5) -> (-45, -42.5)
  line L5 (-45, -42.5) -> (-45, -32.5)
  point P0 (0, 0)
extrude "Extrusion25" cut sketch "Sketch33" against normal blind 17.5
sketch "Sketch34" plane through (0, 7.5, 0) normal (0, 1, 0) x (1, 0, 0)
  line L0 (-280, -50) -> (0, -50) projected
  line L1 (-176.6721, -50) -> (-309.3974, -50)
  line L2 (-309.3974, -50) -> (-309.3974, 41.697)
  line L3 (-309.3974, 41.697) -> (-176.6721, 41.697)
  line L4 (-176.6721, 41.697) -> (-176.6721, -50)
  line L5 (-176.6721, 41.697) -> (-320.285, 41.697)
  line L6 (-320.285, 41.697) -> (-320.285, -112.2851)
  line L7 (-320.285, -112.2851) -> (-176.6721, -112.2851)
  line L8 (-176.6721, -112.2851) -> (-176.6721, 41.697)
  point P0 (0, 0)
extrude "Extrusion26" cut sketch "Sketch34" against normal blind 170.5
sketch "Sketch35" plane through (-176.6721, 7.5, 0) normal (-1, 0, 0) x (0, 0, 1)
  line L0 (42.5, -7.5) -> (7.5, -7.5) construction
  line L1 (0, 0) -> (7.5, -7.5) construction
  line L2 (7.5, -7.5) -> (7.5, 0) construction
  line L3 (21.825, -7.5) -> (0, -7.5) construction
  line L4 (7.5, 0) -> (0, -7.5) construction
  line L5 (5.625, -5.625) -> (1.875, -5.625)
  line L6 (1.875, -5.625) -> (1.875, -1.875)
  line L7 (1.875, -1.875) -> (5.625, -1.875)
  line L8 (5.625, -1.875) -> (5.625, -5.625)
  line L9 (5.625, -5.625) -> (1.875, -1.875) construction
  line L10 (1.875, -5.625) -> (5.625, -1.875) construction
  line L11 (42.5, -7.5) -> (50, 0) construction
  line L12 (50, 0) -> (50, -7.5) construction
  line L13 (50, -7.5) -> (42.5, 0) construction
  line L14 (0, 0) -> (50, 0) construction
  line L15 (48.125, -5.625) -> (44.375, -5.625)
  line L16 (44.375, -5.625) -> (44.375, -1.875)
  line L17 (44.375, -1.875) -> (48.125, -1.875)
  line L18 (48.125, -1.875) -> (48.125, -5.625)
  line L19 (48.125, -5.625) -> (44.375, -1.875) construction
  line L20 (44.375, -5.625) -> (48.125, -1.875) construction
  point P0 (3.75, -3.75)
  point P1 (46.25, -3.75)
  dimension "d164" = 3.75
  dimension "d165" = 3.75
  dimension "d166" = 3.75
  dimension "d167" = 3.75
extrude "Extrusion27" add sketch "Sketch35" along normal blind 10
sketch "Sketch36" plane through (-176.6721, 5.625, 48.125) normal (0, 1, 0) x (1, 0, 0)
  line L0 (0, 0) -> (-13.3619, 0)
  line L1 (-13.3619, 0) -> (-13.3619, 48.125)
  line L2 (-13.3619, 48.125) -> (0, 48.125)
  line L3 (0, 48.125) -> (0, 0)
  point P0 (176.6721, 48.125)
extrude "Extrusion28" cut sketch "Sketch36" against normal blind 100
sketch "Sketch37" plane through (-176.6721, 7.5, 0) normal (-1, 0, 0) x (0, 0, 1)
  line L0 (42.5, -7.5) -> (42.5, -2) construction
  line L1 (50, 0) -> (28.175, 0) construction
  line L2 (42.5, -7.5) -> (50, 0) construction
  line L3 (50, 0) -> (50, -7.5) construction
  line L4 (50, -7.5) -> (46.25, -3.75) construction
  line L5 (42.5, -7.5) -> (7.5, -7.5) construction
  line L6 (0, -7.5) -> (0, 0) construction
  line L7 (7.5, -7.5) -> (0, 0) construction
  line L8 (21.825, -7.5) -> (0, -7.5) construction
  line L9 (0, 0) -> (0, -7.5) construction
  line L10 (0, -7.5) -> (3.75, -3.75) construction
hole "Hole7" at (-176.6721, 3.75, 46.25) at (-176.6721, 3.75, 3.75) direction (1, 0, 0) diameter 5 depth 15
sketch "Sketch38" plane through (0, 7.5, 0) normal (0, 1, 0) x (1, 0, 0)
  line L0 (-91.4577, -41.6279) -> (-86.1085, -41.6279)
  line L1 (-86.1085, -41.6279) -> (-86.1085, -9.2314)
  line L2 (-86.1085, -9.2314) -> (-91.4577, -9.2314)
  line L3 (-91.4577, -9.2314) -> (-91.4577, -41.6279)
  point P0 (0, 0)
extrude "Extrusion29" add sketch "Sketch38" against normal blind 2
sketch "Sketch39" plane through (0, 0, 50) normal (0, 0, 1) x (1, 0, 0)
  line L0 (-176.6721, 7.5) -> (0, 7.5) projected
  line L1 (0, 0) -> (-5, 0)
  line L2 (-5, 0) -> (-5, 7.5)
  line L3 (-5, 7.5) -> (0, 7.5)
  line L4 (0, 7.5) -> (0, 0)
  dimension "d181" = 5
extrude "Extrusion30" add sketch "Sketch39" along normal blind 15
sketch "Sketch40" plane through (0, 0, 28.175) normal (1, 0, 0) x (0, 0, -1)
  line L0 (0, 0) -> (-36.825, 0) construction
  line L1 (-36.825, 0) -> (-29.325, 0) construction
  line L2 (-21.825, 7.5) -> (-36.825, 7.5) construction
  line L3 (-29.325, 0) -> (-36.825, 7.5) construction
  line L4 (-36.825, 7.5) -> (-36.825, 0) construction
  line L5 (-36.825, 7.5) -> (-36.825, 0) construction
  line L6 (-33.075, 3.75) -> (-36.825, 0) construction
  point P0 (28.175, 0)
  dimension "d184" = 7.5
hole "Hole8" at (0, 3.75, 61.25) direction (-1, 0, 0) diameter 6 depth 15
sketch "Sketch41" plane through (0, 25, 0) normal (0, 1, 0) x (1, 0, 0)
  line L0 (-45, -17.5) -> (-45, -7.5) projected
  line L1 (-40, -7.5) -> (-40, -17.5) projected
  line L2 (-45, -17.5) -> (-40, -17.5)
  line L3 (-40, -17.5) -> (-40, -7.5)
  line L4 (-40, -7.5) -> (-45, -7.5)
  line L5 (-45, -7.5) -> (-45, -17.5)
  point P0 (0, 0)
extrude "Extrusion31" cut sketch "Sketch41" against normal blind 17.5
properties part number "mtv_frame(BrakeInBack)1-13"
